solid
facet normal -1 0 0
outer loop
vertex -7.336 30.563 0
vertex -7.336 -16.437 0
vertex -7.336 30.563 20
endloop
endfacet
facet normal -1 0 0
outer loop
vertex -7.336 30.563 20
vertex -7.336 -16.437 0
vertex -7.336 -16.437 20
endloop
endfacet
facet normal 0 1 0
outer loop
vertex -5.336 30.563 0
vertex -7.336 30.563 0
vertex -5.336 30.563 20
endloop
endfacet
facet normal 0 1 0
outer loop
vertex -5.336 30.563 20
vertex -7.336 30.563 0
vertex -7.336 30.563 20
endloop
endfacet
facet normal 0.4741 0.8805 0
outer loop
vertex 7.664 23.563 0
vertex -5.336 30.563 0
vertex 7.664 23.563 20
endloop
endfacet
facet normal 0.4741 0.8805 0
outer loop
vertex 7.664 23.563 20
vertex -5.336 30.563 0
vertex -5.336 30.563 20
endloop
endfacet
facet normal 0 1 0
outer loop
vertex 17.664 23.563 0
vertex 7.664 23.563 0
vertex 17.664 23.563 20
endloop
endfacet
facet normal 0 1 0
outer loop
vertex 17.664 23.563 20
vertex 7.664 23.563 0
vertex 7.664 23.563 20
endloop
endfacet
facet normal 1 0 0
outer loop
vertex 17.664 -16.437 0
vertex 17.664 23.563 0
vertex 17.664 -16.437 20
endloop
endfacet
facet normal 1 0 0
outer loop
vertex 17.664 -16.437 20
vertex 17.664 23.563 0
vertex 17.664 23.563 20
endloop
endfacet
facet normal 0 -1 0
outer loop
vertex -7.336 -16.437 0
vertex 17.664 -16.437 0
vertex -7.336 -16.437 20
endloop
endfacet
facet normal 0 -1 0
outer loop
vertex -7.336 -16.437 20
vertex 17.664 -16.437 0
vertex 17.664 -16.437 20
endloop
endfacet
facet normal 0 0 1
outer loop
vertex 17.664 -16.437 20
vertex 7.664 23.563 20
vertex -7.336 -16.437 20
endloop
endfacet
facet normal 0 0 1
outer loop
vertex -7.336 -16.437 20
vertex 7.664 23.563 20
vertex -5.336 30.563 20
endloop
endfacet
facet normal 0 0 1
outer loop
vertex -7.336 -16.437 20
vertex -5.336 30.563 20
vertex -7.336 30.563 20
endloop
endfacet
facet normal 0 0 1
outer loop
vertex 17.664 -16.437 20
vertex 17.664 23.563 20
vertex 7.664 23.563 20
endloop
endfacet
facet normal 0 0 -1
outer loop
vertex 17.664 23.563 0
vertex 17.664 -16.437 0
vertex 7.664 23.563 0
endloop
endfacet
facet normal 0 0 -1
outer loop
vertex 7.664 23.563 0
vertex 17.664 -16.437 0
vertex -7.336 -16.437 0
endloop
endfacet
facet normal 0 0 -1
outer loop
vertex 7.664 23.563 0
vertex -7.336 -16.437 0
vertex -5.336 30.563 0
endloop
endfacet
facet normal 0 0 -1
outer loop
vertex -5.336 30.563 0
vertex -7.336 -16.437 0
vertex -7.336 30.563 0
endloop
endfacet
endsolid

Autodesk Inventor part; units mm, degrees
ref_plane "YZ Plane" through (0, 0, 0) normal (1, 0, 0) x (0, 1, 0)
ref_plane "XZ Plane" through (0, 0, 0) normal (0, 1, 0) x (-1, 0, 0)
ref_plane "XY Plane" through (0, 0, 0) normal (0, 0, 1) x (1, 0, 0)
sketch "Sketch1" plane through (0, 0, 0) normal (0, 0, 1) x (1, 0, 0)
  line L0 (-7.3355, -16.4371) -> (17.6645, -16.4371)
  line L1 (17.6645, -16.4371) -> (17.6645, 23.5629)
  line L2 (-7.3355, -16.4371) -> (-7.3355, 30.5629)
  line L3 (17.6645, 23.5629) -> (7.6645, 23.5629)
  line L4 (7.6645, 23.5629) -> (-5.3355, 30.5629)
  line L5 (-5.3355, 30.5629) -> (-7.3355, 30.5629)
  point P0 (0, 0)
  dimension "d0" = 25
  dimension "d1" = 2
  dimension "d2" = 10
  dimension "d5" = 40
  dimension "d6" = 47
extrude "Extrusion1" add sketch "Sketch1" along normal blind 20
properties part number "3DP_PLA_Pick_up_tray" material "ABS Plastic"
